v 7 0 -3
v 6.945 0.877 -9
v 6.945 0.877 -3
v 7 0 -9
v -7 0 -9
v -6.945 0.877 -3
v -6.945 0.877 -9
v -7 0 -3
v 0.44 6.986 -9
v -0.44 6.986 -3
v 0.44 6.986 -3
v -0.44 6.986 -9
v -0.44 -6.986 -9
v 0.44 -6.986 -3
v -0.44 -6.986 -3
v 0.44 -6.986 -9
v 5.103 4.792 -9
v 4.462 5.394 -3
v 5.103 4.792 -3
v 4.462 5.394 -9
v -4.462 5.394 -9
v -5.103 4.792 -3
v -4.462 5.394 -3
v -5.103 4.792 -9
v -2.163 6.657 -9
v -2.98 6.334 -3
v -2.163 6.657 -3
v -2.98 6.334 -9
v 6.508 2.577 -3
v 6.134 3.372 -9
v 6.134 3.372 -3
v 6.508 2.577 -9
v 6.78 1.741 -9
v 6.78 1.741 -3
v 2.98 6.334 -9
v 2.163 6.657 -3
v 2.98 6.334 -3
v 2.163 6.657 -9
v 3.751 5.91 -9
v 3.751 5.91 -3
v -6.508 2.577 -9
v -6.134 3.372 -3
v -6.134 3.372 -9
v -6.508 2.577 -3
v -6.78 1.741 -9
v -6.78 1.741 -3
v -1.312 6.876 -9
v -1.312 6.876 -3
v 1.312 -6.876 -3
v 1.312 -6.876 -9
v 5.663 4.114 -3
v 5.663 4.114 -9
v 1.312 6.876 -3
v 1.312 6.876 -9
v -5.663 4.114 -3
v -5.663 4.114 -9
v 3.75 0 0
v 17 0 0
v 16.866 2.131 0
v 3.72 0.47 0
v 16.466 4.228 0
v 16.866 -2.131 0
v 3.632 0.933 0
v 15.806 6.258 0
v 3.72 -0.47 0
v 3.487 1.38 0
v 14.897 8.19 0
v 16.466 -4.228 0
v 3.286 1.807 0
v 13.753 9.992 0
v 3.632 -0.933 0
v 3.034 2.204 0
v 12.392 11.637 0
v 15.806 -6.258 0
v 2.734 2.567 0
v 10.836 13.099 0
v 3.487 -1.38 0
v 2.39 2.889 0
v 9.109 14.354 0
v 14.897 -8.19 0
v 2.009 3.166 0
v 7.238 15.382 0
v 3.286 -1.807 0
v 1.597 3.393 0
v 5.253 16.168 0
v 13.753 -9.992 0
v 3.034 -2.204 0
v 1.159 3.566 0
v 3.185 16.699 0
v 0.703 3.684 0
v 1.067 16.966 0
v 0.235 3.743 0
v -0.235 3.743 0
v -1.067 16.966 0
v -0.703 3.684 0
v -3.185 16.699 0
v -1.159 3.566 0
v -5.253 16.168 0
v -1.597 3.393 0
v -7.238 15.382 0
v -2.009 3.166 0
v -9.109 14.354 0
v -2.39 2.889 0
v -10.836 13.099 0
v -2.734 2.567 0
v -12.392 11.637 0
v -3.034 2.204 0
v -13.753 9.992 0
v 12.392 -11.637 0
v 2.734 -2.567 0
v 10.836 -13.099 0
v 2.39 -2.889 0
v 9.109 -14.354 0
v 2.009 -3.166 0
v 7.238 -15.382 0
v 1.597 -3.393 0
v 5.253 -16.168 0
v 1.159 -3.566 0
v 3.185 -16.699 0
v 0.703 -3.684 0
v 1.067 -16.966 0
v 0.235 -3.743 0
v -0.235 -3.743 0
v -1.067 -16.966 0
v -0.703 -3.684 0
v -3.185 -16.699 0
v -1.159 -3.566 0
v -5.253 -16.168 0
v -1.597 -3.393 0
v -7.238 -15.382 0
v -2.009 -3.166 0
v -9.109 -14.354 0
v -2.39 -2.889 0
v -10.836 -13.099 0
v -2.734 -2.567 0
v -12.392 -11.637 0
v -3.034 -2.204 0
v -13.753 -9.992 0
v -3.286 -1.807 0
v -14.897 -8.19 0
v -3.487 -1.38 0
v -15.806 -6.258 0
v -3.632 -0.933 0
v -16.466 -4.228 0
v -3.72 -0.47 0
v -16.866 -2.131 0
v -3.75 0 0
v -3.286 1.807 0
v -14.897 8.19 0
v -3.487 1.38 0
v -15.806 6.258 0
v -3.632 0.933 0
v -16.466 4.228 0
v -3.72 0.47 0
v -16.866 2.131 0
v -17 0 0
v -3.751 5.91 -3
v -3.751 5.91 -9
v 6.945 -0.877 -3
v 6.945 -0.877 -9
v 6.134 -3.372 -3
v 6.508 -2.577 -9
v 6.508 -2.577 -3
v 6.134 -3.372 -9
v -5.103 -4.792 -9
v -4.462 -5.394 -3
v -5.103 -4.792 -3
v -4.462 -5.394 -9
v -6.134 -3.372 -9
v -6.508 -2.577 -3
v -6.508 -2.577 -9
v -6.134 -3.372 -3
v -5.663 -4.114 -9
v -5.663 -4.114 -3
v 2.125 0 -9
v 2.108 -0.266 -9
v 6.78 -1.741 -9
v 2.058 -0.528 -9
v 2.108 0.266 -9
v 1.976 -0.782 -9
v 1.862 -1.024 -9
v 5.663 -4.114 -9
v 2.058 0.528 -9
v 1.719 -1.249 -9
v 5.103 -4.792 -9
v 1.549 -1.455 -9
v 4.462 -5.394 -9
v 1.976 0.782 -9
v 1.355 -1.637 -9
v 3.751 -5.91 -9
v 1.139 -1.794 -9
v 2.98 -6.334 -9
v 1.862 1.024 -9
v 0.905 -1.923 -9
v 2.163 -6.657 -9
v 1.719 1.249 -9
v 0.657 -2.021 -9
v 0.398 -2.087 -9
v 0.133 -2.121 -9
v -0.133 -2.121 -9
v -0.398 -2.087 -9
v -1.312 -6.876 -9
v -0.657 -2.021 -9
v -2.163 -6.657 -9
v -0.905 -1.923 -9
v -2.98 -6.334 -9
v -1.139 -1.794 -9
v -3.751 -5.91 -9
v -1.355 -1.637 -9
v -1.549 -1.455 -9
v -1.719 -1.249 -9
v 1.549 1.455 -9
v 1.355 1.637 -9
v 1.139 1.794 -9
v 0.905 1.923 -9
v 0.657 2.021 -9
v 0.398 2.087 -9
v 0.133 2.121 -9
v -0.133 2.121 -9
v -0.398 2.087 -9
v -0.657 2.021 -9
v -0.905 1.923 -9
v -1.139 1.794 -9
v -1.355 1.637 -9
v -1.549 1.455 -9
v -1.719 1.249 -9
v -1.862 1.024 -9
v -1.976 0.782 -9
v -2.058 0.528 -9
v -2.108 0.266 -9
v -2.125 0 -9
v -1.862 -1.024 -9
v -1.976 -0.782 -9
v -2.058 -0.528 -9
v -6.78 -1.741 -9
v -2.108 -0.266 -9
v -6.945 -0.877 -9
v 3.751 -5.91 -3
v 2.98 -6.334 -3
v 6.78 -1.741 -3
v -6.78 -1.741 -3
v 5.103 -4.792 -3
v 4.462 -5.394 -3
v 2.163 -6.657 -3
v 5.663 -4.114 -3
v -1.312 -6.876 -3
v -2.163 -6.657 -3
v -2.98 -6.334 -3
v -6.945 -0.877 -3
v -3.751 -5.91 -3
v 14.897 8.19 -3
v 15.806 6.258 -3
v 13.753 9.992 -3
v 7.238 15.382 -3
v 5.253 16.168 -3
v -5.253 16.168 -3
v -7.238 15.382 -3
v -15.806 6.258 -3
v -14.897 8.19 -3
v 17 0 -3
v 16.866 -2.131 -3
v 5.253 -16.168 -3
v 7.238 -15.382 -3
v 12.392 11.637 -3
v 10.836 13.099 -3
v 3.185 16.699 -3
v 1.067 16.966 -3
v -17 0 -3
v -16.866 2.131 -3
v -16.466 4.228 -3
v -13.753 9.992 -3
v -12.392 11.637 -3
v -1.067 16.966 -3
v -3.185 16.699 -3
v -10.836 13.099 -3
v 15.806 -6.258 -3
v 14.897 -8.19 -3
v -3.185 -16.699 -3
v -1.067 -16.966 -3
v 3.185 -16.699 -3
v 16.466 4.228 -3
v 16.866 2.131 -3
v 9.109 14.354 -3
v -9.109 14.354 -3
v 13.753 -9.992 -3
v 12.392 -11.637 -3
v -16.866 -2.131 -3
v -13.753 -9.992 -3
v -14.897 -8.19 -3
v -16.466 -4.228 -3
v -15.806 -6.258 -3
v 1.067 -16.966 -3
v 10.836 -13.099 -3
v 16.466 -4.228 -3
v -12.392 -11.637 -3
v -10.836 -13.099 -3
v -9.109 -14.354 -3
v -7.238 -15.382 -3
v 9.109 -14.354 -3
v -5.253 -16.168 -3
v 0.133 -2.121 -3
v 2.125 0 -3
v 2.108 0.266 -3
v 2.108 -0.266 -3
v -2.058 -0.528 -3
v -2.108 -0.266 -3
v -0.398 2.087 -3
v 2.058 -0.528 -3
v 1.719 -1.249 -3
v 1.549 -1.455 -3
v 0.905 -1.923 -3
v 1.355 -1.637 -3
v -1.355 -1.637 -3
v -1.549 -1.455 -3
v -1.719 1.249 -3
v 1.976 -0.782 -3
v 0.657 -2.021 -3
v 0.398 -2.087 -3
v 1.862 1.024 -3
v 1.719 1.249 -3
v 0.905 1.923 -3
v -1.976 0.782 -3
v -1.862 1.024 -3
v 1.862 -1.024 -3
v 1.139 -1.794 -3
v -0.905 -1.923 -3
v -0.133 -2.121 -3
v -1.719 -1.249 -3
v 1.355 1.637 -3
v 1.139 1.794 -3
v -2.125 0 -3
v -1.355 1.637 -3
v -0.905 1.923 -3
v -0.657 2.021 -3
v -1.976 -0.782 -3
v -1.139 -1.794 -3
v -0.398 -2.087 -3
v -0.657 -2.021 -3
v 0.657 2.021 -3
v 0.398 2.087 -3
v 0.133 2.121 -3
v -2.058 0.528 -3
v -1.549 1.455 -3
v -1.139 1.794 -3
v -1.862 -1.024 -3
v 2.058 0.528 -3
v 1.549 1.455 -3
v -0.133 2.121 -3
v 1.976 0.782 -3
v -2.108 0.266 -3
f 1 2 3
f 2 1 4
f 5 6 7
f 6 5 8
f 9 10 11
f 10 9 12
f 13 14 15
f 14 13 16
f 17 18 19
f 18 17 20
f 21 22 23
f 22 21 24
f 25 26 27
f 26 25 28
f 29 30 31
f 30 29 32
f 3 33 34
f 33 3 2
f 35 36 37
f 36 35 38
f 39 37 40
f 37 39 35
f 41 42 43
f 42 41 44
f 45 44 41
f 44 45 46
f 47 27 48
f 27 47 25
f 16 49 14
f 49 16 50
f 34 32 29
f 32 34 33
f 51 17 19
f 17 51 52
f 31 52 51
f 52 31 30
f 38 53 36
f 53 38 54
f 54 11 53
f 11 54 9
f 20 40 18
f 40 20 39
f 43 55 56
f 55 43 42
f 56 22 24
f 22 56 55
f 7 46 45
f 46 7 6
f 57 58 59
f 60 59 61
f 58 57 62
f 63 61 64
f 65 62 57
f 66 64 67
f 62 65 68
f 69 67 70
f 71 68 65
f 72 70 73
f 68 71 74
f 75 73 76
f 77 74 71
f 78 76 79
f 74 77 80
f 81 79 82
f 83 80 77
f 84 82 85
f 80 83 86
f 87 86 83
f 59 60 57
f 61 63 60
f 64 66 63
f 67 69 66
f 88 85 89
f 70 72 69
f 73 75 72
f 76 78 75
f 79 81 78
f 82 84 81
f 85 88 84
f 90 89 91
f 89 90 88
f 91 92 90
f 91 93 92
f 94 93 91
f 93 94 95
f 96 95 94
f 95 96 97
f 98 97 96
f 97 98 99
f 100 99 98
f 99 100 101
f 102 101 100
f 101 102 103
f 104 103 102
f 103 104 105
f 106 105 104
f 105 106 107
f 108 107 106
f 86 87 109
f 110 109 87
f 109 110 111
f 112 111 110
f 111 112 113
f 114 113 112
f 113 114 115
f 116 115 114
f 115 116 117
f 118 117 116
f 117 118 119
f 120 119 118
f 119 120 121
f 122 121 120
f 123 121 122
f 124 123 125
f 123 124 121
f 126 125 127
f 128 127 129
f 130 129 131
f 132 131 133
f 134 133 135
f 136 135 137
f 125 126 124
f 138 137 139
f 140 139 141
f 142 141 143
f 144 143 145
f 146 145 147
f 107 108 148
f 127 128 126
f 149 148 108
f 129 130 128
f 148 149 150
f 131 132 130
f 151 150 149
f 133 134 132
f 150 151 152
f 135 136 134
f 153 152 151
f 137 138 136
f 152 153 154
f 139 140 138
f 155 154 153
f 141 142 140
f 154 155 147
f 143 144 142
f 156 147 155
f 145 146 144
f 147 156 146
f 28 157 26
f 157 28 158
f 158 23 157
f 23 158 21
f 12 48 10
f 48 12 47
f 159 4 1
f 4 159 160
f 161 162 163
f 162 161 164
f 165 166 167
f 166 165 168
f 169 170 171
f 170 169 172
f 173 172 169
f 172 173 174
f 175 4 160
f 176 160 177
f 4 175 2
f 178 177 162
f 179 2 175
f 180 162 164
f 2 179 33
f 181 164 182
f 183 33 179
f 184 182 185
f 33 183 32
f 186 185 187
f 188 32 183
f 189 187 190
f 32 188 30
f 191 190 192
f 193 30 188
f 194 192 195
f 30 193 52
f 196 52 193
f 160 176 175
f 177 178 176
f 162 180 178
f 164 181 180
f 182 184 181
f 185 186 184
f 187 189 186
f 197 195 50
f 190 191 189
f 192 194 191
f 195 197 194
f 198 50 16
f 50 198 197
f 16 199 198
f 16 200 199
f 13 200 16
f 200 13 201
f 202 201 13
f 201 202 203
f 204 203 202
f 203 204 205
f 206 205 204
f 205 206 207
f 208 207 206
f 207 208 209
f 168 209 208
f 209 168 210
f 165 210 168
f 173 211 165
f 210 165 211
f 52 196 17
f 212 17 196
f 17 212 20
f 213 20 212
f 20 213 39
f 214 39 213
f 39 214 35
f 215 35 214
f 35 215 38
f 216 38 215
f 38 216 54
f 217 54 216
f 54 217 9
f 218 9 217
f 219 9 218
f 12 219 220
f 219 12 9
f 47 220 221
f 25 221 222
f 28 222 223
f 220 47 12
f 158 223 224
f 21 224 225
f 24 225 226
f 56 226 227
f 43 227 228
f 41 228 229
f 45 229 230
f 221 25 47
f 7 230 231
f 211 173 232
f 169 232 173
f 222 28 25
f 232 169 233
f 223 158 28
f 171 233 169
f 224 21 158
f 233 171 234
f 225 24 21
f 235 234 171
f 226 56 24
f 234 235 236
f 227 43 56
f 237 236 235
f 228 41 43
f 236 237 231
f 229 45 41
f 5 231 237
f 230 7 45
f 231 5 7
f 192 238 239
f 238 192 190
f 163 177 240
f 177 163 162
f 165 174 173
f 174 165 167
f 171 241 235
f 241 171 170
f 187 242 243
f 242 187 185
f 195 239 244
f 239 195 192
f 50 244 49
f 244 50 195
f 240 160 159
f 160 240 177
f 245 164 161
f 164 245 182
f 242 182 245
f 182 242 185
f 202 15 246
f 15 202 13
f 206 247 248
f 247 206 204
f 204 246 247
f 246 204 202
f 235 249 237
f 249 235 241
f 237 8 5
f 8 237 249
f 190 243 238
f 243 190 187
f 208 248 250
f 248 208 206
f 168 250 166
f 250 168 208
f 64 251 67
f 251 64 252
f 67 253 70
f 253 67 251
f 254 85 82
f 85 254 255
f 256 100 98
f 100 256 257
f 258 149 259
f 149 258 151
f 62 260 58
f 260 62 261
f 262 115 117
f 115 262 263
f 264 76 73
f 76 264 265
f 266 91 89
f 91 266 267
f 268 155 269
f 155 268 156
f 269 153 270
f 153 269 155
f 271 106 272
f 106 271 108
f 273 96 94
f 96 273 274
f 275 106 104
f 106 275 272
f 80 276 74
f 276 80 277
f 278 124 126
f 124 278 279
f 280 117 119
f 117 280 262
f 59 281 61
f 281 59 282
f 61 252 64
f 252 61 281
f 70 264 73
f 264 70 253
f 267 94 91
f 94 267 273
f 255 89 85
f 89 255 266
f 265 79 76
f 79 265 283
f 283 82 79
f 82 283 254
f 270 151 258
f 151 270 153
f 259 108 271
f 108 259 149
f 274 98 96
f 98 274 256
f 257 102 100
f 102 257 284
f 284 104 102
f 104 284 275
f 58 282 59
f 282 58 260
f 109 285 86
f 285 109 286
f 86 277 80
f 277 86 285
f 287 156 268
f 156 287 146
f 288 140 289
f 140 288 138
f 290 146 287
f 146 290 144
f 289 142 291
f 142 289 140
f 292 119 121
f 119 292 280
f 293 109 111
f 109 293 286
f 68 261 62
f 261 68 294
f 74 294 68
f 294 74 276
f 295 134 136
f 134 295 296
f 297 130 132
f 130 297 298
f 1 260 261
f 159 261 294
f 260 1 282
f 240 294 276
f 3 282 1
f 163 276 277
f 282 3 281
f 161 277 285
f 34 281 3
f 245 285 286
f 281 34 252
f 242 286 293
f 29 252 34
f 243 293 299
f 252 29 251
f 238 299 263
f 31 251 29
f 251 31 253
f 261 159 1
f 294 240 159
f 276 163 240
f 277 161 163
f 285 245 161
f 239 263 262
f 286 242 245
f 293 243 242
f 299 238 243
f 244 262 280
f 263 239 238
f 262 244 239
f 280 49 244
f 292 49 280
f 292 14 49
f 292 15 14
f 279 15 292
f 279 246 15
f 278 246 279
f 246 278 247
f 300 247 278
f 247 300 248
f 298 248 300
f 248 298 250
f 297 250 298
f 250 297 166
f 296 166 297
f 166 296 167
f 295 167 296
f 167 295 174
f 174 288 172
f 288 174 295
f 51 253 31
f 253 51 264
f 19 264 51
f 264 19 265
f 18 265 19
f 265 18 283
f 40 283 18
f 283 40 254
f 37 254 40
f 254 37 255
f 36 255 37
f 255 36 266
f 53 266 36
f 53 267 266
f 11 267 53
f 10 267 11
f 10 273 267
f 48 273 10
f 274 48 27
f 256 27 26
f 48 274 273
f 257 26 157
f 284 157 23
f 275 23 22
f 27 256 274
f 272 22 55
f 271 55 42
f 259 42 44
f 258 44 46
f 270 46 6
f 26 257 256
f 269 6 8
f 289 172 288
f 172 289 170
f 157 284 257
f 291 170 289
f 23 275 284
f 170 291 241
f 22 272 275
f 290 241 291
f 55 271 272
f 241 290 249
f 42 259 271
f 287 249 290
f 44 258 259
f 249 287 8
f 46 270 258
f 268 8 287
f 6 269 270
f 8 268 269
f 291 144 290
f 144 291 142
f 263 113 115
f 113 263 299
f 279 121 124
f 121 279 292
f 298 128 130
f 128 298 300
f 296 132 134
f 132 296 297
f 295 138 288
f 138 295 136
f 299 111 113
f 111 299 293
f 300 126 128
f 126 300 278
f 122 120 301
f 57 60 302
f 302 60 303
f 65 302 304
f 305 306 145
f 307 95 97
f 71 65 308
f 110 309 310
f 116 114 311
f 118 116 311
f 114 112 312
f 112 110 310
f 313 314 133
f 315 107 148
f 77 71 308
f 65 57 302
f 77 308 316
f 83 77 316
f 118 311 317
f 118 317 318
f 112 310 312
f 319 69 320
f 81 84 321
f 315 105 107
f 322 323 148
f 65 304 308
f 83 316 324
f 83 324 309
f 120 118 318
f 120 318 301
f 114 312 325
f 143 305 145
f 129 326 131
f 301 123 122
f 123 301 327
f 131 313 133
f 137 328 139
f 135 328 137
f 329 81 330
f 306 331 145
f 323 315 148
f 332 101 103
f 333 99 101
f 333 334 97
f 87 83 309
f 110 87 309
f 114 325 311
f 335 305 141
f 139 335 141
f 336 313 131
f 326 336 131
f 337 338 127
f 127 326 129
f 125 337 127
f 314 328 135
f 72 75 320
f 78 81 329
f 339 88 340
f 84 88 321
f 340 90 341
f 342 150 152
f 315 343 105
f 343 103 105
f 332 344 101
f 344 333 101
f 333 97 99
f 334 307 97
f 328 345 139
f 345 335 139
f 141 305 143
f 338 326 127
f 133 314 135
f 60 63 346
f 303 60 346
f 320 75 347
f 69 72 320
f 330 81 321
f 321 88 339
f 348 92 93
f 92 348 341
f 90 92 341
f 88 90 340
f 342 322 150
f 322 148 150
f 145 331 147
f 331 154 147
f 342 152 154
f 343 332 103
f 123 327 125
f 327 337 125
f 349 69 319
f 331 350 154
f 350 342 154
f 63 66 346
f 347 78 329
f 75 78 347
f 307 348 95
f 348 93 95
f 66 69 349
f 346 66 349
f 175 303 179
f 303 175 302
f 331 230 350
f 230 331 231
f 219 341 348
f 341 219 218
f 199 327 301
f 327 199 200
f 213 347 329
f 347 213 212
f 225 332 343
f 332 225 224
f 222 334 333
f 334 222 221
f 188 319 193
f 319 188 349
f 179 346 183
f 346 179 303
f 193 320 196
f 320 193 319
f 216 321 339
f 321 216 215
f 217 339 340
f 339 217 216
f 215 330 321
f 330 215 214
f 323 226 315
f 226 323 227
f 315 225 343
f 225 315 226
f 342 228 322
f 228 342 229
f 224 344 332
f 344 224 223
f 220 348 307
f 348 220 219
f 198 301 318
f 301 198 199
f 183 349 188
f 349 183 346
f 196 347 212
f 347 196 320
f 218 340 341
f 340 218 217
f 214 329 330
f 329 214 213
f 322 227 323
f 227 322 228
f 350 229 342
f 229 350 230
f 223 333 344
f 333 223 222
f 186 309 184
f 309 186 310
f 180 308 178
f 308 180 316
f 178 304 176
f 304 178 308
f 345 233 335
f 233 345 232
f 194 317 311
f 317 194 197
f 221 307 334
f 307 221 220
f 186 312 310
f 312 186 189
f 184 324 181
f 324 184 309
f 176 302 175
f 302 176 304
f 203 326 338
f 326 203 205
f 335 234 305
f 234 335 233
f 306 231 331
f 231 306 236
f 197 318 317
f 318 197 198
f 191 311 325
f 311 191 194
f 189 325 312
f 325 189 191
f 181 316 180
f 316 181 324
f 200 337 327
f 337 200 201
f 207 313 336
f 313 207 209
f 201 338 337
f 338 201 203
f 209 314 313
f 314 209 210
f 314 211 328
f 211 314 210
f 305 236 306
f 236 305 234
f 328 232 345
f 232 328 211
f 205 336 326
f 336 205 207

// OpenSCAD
$fn = 50;


difference() {
	union() {
		translate(v = [0, 0, -9.0000000000]) {
			cylinder(h = 9, r = 7.0000000000);
		}
		translate(v = [0, 0, -3.0000000000]) {
			cylinder(h = 3, r = 17.0000000000);
		}
	}
	union() {
		translate(v = [0, 0, 0]) {
			rotate(a = [0, 0, 0]) {
				difference() {
					union() {
						#translate(v = [0, 0, -9.0000000000]) {
							cylinder(h = 9, r = 2.0000000000);
						}
						#translate(v = [0, 0, -3]) {
							cylinder(h = 3, r1 = 2.1250000000, r2 = 3.7500000000);
						}
						#translate(v = [0, 0, -9.0000000000]) {
							cylinder(h = 9, r = 2.1250000000);
						}
						#translate(v = [0, 0, -9.0000000000]) {
							cylinder(h = 9, r = 2.0000000000);
						}
					}
					union();
				}
			}
		}
	}
}
